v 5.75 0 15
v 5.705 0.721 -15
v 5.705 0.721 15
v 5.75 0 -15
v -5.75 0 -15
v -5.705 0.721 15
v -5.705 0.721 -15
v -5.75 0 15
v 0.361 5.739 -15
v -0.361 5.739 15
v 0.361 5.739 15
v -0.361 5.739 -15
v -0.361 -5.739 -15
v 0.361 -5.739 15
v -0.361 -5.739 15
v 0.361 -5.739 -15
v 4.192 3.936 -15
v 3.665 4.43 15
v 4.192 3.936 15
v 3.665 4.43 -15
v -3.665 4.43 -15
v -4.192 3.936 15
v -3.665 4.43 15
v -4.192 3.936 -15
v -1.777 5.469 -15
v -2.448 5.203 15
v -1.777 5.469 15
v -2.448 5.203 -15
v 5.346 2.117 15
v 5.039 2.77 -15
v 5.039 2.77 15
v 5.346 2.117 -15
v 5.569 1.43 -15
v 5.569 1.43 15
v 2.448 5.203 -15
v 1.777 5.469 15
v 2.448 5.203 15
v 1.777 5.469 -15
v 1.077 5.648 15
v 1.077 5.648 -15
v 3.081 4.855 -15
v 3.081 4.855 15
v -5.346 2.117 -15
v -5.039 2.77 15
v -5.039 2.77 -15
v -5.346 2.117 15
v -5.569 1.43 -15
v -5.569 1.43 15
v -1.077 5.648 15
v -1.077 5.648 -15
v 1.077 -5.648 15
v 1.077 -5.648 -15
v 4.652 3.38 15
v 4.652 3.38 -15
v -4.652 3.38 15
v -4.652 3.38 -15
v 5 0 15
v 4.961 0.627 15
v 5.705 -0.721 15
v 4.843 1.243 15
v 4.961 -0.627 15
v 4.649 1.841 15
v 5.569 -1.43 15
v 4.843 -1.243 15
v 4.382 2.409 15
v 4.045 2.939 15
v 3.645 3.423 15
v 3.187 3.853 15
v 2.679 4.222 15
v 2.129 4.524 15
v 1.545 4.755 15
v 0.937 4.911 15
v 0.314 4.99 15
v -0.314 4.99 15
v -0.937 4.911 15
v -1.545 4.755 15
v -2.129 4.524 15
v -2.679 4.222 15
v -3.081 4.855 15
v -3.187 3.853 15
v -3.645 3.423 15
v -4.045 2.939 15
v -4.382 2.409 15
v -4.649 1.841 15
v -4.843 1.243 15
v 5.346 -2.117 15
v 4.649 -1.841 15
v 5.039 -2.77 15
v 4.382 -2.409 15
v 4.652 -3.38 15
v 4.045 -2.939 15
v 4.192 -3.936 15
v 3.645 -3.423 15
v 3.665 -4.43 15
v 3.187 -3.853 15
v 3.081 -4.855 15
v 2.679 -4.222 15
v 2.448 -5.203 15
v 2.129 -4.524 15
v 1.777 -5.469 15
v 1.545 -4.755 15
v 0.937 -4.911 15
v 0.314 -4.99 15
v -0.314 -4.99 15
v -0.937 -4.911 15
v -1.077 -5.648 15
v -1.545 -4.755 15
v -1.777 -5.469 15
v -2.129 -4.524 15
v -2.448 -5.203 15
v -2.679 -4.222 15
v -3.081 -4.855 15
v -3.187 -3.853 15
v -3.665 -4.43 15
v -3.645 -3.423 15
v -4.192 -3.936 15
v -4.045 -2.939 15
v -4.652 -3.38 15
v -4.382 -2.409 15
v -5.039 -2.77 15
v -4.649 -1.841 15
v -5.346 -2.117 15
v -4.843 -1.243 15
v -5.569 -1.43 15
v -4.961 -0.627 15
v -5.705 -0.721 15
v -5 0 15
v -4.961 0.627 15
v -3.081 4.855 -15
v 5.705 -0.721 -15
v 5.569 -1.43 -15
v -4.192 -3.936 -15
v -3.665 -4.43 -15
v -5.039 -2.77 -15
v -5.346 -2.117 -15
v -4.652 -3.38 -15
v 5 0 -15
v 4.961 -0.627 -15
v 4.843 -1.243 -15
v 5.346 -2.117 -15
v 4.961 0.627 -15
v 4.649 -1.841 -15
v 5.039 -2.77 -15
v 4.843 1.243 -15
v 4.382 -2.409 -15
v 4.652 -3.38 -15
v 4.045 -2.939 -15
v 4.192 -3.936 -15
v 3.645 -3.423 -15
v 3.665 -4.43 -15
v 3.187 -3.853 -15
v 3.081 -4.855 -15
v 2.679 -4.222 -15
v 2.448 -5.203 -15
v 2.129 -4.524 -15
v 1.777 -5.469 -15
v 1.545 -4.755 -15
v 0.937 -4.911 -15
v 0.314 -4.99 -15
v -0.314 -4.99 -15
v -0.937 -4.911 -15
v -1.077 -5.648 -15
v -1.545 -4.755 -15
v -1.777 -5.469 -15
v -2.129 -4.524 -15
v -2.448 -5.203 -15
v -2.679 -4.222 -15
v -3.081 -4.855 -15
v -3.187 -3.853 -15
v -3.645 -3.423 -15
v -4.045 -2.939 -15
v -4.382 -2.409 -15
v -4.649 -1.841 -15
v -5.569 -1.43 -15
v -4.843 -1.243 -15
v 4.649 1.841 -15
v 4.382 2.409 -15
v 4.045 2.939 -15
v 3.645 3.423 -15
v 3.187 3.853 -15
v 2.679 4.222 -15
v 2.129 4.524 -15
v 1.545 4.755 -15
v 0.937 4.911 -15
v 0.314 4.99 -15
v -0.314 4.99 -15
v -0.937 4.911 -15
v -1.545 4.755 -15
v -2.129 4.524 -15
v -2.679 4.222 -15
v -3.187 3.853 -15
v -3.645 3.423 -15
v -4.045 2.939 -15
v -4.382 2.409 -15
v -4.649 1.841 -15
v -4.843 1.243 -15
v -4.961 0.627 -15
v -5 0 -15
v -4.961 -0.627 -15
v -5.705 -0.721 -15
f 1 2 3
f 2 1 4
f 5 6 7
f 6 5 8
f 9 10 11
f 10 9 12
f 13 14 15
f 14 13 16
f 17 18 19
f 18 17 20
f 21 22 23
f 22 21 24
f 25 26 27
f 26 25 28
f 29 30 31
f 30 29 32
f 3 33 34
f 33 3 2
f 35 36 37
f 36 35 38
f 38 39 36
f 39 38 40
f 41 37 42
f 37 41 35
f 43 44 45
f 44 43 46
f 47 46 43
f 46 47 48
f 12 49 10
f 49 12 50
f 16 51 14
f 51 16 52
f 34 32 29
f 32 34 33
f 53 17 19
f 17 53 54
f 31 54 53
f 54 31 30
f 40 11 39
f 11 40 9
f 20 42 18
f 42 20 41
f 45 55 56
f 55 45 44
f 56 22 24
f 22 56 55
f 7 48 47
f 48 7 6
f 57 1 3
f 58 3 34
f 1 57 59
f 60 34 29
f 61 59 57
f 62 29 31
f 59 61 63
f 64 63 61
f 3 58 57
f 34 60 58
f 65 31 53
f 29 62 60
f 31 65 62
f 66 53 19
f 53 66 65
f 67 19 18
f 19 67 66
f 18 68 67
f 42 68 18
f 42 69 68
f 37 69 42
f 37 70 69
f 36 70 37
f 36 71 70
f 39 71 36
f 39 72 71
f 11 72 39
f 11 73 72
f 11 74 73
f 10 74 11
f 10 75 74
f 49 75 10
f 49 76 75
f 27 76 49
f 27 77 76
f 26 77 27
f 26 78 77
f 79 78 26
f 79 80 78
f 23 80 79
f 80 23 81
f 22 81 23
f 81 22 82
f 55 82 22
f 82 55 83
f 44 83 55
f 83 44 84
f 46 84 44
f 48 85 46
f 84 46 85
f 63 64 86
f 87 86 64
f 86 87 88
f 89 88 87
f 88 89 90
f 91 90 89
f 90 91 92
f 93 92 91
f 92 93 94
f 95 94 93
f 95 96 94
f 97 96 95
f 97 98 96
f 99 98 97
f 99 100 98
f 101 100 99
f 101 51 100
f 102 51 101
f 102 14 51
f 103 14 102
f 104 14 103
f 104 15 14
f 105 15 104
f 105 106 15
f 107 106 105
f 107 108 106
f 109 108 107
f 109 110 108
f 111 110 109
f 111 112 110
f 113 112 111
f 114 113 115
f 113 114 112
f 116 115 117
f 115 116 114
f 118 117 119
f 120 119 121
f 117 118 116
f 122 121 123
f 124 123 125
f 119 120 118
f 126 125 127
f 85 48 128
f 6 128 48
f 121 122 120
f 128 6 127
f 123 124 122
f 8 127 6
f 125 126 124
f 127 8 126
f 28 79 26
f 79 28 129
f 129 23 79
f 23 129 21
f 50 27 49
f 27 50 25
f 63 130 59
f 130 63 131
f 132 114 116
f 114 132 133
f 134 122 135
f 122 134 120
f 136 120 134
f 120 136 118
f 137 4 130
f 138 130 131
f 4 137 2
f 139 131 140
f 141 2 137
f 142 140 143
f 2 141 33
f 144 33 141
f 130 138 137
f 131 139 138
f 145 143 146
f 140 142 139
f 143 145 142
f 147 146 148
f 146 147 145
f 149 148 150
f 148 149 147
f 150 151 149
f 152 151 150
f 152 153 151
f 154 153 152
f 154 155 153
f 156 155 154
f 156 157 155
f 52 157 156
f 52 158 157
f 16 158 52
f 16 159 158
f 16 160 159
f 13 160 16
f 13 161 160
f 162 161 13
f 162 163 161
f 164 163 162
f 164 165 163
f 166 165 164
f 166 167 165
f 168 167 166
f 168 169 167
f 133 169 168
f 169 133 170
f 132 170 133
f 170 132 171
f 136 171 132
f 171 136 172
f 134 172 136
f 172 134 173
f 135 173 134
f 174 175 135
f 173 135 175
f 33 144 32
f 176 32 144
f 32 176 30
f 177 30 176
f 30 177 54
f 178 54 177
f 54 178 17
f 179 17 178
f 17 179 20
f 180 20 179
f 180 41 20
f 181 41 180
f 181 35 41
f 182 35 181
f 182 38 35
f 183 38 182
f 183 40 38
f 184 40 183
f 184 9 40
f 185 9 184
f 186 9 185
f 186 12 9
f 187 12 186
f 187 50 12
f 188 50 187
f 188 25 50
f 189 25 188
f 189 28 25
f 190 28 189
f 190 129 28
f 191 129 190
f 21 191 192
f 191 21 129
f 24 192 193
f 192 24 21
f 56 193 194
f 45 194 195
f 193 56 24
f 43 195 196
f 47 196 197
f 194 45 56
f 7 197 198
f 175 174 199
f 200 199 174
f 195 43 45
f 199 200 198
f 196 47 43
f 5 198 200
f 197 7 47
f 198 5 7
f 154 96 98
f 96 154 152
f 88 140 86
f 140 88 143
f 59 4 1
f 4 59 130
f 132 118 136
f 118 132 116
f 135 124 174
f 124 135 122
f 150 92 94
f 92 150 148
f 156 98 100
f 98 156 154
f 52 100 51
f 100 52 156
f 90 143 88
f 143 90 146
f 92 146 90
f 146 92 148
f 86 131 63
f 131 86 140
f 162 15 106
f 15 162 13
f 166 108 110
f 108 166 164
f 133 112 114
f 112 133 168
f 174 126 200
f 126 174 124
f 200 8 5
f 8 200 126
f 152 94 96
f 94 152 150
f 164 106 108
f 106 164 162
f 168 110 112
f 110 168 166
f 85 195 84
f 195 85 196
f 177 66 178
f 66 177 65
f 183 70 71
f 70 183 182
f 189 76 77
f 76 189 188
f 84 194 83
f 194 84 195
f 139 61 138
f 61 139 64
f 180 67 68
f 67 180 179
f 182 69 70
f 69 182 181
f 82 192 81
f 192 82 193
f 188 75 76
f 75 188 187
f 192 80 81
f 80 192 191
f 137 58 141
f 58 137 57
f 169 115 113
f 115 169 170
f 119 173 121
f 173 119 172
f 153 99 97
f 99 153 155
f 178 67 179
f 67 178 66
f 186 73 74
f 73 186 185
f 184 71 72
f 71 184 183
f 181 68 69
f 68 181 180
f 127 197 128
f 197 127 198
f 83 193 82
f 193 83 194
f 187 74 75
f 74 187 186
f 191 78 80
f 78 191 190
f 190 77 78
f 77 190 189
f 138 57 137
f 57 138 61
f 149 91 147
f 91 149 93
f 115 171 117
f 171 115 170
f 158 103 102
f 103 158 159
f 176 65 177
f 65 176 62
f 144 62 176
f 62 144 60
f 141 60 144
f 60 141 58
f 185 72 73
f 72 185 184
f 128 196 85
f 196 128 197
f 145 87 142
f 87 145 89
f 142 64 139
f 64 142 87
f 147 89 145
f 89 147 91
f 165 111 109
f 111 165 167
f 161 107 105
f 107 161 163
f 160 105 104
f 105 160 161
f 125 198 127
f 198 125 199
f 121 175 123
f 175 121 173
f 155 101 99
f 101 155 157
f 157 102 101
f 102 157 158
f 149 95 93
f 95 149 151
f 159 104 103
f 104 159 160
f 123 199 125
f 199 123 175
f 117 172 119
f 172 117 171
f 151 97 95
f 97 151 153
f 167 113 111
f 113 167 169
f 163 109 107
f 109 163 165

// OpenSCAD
$fn = 50;


difference() {
	union() {
		translate(v = [0, 0, -15.0000000000]) {
			cylinder(h = 30, r = 5.7500000000);
		}
	}
	union() {
		translate(v = [0, 0, -100.0000000000]) {
			cylinder(h = 200, r = 5.0000000000);
		}
	}
}
